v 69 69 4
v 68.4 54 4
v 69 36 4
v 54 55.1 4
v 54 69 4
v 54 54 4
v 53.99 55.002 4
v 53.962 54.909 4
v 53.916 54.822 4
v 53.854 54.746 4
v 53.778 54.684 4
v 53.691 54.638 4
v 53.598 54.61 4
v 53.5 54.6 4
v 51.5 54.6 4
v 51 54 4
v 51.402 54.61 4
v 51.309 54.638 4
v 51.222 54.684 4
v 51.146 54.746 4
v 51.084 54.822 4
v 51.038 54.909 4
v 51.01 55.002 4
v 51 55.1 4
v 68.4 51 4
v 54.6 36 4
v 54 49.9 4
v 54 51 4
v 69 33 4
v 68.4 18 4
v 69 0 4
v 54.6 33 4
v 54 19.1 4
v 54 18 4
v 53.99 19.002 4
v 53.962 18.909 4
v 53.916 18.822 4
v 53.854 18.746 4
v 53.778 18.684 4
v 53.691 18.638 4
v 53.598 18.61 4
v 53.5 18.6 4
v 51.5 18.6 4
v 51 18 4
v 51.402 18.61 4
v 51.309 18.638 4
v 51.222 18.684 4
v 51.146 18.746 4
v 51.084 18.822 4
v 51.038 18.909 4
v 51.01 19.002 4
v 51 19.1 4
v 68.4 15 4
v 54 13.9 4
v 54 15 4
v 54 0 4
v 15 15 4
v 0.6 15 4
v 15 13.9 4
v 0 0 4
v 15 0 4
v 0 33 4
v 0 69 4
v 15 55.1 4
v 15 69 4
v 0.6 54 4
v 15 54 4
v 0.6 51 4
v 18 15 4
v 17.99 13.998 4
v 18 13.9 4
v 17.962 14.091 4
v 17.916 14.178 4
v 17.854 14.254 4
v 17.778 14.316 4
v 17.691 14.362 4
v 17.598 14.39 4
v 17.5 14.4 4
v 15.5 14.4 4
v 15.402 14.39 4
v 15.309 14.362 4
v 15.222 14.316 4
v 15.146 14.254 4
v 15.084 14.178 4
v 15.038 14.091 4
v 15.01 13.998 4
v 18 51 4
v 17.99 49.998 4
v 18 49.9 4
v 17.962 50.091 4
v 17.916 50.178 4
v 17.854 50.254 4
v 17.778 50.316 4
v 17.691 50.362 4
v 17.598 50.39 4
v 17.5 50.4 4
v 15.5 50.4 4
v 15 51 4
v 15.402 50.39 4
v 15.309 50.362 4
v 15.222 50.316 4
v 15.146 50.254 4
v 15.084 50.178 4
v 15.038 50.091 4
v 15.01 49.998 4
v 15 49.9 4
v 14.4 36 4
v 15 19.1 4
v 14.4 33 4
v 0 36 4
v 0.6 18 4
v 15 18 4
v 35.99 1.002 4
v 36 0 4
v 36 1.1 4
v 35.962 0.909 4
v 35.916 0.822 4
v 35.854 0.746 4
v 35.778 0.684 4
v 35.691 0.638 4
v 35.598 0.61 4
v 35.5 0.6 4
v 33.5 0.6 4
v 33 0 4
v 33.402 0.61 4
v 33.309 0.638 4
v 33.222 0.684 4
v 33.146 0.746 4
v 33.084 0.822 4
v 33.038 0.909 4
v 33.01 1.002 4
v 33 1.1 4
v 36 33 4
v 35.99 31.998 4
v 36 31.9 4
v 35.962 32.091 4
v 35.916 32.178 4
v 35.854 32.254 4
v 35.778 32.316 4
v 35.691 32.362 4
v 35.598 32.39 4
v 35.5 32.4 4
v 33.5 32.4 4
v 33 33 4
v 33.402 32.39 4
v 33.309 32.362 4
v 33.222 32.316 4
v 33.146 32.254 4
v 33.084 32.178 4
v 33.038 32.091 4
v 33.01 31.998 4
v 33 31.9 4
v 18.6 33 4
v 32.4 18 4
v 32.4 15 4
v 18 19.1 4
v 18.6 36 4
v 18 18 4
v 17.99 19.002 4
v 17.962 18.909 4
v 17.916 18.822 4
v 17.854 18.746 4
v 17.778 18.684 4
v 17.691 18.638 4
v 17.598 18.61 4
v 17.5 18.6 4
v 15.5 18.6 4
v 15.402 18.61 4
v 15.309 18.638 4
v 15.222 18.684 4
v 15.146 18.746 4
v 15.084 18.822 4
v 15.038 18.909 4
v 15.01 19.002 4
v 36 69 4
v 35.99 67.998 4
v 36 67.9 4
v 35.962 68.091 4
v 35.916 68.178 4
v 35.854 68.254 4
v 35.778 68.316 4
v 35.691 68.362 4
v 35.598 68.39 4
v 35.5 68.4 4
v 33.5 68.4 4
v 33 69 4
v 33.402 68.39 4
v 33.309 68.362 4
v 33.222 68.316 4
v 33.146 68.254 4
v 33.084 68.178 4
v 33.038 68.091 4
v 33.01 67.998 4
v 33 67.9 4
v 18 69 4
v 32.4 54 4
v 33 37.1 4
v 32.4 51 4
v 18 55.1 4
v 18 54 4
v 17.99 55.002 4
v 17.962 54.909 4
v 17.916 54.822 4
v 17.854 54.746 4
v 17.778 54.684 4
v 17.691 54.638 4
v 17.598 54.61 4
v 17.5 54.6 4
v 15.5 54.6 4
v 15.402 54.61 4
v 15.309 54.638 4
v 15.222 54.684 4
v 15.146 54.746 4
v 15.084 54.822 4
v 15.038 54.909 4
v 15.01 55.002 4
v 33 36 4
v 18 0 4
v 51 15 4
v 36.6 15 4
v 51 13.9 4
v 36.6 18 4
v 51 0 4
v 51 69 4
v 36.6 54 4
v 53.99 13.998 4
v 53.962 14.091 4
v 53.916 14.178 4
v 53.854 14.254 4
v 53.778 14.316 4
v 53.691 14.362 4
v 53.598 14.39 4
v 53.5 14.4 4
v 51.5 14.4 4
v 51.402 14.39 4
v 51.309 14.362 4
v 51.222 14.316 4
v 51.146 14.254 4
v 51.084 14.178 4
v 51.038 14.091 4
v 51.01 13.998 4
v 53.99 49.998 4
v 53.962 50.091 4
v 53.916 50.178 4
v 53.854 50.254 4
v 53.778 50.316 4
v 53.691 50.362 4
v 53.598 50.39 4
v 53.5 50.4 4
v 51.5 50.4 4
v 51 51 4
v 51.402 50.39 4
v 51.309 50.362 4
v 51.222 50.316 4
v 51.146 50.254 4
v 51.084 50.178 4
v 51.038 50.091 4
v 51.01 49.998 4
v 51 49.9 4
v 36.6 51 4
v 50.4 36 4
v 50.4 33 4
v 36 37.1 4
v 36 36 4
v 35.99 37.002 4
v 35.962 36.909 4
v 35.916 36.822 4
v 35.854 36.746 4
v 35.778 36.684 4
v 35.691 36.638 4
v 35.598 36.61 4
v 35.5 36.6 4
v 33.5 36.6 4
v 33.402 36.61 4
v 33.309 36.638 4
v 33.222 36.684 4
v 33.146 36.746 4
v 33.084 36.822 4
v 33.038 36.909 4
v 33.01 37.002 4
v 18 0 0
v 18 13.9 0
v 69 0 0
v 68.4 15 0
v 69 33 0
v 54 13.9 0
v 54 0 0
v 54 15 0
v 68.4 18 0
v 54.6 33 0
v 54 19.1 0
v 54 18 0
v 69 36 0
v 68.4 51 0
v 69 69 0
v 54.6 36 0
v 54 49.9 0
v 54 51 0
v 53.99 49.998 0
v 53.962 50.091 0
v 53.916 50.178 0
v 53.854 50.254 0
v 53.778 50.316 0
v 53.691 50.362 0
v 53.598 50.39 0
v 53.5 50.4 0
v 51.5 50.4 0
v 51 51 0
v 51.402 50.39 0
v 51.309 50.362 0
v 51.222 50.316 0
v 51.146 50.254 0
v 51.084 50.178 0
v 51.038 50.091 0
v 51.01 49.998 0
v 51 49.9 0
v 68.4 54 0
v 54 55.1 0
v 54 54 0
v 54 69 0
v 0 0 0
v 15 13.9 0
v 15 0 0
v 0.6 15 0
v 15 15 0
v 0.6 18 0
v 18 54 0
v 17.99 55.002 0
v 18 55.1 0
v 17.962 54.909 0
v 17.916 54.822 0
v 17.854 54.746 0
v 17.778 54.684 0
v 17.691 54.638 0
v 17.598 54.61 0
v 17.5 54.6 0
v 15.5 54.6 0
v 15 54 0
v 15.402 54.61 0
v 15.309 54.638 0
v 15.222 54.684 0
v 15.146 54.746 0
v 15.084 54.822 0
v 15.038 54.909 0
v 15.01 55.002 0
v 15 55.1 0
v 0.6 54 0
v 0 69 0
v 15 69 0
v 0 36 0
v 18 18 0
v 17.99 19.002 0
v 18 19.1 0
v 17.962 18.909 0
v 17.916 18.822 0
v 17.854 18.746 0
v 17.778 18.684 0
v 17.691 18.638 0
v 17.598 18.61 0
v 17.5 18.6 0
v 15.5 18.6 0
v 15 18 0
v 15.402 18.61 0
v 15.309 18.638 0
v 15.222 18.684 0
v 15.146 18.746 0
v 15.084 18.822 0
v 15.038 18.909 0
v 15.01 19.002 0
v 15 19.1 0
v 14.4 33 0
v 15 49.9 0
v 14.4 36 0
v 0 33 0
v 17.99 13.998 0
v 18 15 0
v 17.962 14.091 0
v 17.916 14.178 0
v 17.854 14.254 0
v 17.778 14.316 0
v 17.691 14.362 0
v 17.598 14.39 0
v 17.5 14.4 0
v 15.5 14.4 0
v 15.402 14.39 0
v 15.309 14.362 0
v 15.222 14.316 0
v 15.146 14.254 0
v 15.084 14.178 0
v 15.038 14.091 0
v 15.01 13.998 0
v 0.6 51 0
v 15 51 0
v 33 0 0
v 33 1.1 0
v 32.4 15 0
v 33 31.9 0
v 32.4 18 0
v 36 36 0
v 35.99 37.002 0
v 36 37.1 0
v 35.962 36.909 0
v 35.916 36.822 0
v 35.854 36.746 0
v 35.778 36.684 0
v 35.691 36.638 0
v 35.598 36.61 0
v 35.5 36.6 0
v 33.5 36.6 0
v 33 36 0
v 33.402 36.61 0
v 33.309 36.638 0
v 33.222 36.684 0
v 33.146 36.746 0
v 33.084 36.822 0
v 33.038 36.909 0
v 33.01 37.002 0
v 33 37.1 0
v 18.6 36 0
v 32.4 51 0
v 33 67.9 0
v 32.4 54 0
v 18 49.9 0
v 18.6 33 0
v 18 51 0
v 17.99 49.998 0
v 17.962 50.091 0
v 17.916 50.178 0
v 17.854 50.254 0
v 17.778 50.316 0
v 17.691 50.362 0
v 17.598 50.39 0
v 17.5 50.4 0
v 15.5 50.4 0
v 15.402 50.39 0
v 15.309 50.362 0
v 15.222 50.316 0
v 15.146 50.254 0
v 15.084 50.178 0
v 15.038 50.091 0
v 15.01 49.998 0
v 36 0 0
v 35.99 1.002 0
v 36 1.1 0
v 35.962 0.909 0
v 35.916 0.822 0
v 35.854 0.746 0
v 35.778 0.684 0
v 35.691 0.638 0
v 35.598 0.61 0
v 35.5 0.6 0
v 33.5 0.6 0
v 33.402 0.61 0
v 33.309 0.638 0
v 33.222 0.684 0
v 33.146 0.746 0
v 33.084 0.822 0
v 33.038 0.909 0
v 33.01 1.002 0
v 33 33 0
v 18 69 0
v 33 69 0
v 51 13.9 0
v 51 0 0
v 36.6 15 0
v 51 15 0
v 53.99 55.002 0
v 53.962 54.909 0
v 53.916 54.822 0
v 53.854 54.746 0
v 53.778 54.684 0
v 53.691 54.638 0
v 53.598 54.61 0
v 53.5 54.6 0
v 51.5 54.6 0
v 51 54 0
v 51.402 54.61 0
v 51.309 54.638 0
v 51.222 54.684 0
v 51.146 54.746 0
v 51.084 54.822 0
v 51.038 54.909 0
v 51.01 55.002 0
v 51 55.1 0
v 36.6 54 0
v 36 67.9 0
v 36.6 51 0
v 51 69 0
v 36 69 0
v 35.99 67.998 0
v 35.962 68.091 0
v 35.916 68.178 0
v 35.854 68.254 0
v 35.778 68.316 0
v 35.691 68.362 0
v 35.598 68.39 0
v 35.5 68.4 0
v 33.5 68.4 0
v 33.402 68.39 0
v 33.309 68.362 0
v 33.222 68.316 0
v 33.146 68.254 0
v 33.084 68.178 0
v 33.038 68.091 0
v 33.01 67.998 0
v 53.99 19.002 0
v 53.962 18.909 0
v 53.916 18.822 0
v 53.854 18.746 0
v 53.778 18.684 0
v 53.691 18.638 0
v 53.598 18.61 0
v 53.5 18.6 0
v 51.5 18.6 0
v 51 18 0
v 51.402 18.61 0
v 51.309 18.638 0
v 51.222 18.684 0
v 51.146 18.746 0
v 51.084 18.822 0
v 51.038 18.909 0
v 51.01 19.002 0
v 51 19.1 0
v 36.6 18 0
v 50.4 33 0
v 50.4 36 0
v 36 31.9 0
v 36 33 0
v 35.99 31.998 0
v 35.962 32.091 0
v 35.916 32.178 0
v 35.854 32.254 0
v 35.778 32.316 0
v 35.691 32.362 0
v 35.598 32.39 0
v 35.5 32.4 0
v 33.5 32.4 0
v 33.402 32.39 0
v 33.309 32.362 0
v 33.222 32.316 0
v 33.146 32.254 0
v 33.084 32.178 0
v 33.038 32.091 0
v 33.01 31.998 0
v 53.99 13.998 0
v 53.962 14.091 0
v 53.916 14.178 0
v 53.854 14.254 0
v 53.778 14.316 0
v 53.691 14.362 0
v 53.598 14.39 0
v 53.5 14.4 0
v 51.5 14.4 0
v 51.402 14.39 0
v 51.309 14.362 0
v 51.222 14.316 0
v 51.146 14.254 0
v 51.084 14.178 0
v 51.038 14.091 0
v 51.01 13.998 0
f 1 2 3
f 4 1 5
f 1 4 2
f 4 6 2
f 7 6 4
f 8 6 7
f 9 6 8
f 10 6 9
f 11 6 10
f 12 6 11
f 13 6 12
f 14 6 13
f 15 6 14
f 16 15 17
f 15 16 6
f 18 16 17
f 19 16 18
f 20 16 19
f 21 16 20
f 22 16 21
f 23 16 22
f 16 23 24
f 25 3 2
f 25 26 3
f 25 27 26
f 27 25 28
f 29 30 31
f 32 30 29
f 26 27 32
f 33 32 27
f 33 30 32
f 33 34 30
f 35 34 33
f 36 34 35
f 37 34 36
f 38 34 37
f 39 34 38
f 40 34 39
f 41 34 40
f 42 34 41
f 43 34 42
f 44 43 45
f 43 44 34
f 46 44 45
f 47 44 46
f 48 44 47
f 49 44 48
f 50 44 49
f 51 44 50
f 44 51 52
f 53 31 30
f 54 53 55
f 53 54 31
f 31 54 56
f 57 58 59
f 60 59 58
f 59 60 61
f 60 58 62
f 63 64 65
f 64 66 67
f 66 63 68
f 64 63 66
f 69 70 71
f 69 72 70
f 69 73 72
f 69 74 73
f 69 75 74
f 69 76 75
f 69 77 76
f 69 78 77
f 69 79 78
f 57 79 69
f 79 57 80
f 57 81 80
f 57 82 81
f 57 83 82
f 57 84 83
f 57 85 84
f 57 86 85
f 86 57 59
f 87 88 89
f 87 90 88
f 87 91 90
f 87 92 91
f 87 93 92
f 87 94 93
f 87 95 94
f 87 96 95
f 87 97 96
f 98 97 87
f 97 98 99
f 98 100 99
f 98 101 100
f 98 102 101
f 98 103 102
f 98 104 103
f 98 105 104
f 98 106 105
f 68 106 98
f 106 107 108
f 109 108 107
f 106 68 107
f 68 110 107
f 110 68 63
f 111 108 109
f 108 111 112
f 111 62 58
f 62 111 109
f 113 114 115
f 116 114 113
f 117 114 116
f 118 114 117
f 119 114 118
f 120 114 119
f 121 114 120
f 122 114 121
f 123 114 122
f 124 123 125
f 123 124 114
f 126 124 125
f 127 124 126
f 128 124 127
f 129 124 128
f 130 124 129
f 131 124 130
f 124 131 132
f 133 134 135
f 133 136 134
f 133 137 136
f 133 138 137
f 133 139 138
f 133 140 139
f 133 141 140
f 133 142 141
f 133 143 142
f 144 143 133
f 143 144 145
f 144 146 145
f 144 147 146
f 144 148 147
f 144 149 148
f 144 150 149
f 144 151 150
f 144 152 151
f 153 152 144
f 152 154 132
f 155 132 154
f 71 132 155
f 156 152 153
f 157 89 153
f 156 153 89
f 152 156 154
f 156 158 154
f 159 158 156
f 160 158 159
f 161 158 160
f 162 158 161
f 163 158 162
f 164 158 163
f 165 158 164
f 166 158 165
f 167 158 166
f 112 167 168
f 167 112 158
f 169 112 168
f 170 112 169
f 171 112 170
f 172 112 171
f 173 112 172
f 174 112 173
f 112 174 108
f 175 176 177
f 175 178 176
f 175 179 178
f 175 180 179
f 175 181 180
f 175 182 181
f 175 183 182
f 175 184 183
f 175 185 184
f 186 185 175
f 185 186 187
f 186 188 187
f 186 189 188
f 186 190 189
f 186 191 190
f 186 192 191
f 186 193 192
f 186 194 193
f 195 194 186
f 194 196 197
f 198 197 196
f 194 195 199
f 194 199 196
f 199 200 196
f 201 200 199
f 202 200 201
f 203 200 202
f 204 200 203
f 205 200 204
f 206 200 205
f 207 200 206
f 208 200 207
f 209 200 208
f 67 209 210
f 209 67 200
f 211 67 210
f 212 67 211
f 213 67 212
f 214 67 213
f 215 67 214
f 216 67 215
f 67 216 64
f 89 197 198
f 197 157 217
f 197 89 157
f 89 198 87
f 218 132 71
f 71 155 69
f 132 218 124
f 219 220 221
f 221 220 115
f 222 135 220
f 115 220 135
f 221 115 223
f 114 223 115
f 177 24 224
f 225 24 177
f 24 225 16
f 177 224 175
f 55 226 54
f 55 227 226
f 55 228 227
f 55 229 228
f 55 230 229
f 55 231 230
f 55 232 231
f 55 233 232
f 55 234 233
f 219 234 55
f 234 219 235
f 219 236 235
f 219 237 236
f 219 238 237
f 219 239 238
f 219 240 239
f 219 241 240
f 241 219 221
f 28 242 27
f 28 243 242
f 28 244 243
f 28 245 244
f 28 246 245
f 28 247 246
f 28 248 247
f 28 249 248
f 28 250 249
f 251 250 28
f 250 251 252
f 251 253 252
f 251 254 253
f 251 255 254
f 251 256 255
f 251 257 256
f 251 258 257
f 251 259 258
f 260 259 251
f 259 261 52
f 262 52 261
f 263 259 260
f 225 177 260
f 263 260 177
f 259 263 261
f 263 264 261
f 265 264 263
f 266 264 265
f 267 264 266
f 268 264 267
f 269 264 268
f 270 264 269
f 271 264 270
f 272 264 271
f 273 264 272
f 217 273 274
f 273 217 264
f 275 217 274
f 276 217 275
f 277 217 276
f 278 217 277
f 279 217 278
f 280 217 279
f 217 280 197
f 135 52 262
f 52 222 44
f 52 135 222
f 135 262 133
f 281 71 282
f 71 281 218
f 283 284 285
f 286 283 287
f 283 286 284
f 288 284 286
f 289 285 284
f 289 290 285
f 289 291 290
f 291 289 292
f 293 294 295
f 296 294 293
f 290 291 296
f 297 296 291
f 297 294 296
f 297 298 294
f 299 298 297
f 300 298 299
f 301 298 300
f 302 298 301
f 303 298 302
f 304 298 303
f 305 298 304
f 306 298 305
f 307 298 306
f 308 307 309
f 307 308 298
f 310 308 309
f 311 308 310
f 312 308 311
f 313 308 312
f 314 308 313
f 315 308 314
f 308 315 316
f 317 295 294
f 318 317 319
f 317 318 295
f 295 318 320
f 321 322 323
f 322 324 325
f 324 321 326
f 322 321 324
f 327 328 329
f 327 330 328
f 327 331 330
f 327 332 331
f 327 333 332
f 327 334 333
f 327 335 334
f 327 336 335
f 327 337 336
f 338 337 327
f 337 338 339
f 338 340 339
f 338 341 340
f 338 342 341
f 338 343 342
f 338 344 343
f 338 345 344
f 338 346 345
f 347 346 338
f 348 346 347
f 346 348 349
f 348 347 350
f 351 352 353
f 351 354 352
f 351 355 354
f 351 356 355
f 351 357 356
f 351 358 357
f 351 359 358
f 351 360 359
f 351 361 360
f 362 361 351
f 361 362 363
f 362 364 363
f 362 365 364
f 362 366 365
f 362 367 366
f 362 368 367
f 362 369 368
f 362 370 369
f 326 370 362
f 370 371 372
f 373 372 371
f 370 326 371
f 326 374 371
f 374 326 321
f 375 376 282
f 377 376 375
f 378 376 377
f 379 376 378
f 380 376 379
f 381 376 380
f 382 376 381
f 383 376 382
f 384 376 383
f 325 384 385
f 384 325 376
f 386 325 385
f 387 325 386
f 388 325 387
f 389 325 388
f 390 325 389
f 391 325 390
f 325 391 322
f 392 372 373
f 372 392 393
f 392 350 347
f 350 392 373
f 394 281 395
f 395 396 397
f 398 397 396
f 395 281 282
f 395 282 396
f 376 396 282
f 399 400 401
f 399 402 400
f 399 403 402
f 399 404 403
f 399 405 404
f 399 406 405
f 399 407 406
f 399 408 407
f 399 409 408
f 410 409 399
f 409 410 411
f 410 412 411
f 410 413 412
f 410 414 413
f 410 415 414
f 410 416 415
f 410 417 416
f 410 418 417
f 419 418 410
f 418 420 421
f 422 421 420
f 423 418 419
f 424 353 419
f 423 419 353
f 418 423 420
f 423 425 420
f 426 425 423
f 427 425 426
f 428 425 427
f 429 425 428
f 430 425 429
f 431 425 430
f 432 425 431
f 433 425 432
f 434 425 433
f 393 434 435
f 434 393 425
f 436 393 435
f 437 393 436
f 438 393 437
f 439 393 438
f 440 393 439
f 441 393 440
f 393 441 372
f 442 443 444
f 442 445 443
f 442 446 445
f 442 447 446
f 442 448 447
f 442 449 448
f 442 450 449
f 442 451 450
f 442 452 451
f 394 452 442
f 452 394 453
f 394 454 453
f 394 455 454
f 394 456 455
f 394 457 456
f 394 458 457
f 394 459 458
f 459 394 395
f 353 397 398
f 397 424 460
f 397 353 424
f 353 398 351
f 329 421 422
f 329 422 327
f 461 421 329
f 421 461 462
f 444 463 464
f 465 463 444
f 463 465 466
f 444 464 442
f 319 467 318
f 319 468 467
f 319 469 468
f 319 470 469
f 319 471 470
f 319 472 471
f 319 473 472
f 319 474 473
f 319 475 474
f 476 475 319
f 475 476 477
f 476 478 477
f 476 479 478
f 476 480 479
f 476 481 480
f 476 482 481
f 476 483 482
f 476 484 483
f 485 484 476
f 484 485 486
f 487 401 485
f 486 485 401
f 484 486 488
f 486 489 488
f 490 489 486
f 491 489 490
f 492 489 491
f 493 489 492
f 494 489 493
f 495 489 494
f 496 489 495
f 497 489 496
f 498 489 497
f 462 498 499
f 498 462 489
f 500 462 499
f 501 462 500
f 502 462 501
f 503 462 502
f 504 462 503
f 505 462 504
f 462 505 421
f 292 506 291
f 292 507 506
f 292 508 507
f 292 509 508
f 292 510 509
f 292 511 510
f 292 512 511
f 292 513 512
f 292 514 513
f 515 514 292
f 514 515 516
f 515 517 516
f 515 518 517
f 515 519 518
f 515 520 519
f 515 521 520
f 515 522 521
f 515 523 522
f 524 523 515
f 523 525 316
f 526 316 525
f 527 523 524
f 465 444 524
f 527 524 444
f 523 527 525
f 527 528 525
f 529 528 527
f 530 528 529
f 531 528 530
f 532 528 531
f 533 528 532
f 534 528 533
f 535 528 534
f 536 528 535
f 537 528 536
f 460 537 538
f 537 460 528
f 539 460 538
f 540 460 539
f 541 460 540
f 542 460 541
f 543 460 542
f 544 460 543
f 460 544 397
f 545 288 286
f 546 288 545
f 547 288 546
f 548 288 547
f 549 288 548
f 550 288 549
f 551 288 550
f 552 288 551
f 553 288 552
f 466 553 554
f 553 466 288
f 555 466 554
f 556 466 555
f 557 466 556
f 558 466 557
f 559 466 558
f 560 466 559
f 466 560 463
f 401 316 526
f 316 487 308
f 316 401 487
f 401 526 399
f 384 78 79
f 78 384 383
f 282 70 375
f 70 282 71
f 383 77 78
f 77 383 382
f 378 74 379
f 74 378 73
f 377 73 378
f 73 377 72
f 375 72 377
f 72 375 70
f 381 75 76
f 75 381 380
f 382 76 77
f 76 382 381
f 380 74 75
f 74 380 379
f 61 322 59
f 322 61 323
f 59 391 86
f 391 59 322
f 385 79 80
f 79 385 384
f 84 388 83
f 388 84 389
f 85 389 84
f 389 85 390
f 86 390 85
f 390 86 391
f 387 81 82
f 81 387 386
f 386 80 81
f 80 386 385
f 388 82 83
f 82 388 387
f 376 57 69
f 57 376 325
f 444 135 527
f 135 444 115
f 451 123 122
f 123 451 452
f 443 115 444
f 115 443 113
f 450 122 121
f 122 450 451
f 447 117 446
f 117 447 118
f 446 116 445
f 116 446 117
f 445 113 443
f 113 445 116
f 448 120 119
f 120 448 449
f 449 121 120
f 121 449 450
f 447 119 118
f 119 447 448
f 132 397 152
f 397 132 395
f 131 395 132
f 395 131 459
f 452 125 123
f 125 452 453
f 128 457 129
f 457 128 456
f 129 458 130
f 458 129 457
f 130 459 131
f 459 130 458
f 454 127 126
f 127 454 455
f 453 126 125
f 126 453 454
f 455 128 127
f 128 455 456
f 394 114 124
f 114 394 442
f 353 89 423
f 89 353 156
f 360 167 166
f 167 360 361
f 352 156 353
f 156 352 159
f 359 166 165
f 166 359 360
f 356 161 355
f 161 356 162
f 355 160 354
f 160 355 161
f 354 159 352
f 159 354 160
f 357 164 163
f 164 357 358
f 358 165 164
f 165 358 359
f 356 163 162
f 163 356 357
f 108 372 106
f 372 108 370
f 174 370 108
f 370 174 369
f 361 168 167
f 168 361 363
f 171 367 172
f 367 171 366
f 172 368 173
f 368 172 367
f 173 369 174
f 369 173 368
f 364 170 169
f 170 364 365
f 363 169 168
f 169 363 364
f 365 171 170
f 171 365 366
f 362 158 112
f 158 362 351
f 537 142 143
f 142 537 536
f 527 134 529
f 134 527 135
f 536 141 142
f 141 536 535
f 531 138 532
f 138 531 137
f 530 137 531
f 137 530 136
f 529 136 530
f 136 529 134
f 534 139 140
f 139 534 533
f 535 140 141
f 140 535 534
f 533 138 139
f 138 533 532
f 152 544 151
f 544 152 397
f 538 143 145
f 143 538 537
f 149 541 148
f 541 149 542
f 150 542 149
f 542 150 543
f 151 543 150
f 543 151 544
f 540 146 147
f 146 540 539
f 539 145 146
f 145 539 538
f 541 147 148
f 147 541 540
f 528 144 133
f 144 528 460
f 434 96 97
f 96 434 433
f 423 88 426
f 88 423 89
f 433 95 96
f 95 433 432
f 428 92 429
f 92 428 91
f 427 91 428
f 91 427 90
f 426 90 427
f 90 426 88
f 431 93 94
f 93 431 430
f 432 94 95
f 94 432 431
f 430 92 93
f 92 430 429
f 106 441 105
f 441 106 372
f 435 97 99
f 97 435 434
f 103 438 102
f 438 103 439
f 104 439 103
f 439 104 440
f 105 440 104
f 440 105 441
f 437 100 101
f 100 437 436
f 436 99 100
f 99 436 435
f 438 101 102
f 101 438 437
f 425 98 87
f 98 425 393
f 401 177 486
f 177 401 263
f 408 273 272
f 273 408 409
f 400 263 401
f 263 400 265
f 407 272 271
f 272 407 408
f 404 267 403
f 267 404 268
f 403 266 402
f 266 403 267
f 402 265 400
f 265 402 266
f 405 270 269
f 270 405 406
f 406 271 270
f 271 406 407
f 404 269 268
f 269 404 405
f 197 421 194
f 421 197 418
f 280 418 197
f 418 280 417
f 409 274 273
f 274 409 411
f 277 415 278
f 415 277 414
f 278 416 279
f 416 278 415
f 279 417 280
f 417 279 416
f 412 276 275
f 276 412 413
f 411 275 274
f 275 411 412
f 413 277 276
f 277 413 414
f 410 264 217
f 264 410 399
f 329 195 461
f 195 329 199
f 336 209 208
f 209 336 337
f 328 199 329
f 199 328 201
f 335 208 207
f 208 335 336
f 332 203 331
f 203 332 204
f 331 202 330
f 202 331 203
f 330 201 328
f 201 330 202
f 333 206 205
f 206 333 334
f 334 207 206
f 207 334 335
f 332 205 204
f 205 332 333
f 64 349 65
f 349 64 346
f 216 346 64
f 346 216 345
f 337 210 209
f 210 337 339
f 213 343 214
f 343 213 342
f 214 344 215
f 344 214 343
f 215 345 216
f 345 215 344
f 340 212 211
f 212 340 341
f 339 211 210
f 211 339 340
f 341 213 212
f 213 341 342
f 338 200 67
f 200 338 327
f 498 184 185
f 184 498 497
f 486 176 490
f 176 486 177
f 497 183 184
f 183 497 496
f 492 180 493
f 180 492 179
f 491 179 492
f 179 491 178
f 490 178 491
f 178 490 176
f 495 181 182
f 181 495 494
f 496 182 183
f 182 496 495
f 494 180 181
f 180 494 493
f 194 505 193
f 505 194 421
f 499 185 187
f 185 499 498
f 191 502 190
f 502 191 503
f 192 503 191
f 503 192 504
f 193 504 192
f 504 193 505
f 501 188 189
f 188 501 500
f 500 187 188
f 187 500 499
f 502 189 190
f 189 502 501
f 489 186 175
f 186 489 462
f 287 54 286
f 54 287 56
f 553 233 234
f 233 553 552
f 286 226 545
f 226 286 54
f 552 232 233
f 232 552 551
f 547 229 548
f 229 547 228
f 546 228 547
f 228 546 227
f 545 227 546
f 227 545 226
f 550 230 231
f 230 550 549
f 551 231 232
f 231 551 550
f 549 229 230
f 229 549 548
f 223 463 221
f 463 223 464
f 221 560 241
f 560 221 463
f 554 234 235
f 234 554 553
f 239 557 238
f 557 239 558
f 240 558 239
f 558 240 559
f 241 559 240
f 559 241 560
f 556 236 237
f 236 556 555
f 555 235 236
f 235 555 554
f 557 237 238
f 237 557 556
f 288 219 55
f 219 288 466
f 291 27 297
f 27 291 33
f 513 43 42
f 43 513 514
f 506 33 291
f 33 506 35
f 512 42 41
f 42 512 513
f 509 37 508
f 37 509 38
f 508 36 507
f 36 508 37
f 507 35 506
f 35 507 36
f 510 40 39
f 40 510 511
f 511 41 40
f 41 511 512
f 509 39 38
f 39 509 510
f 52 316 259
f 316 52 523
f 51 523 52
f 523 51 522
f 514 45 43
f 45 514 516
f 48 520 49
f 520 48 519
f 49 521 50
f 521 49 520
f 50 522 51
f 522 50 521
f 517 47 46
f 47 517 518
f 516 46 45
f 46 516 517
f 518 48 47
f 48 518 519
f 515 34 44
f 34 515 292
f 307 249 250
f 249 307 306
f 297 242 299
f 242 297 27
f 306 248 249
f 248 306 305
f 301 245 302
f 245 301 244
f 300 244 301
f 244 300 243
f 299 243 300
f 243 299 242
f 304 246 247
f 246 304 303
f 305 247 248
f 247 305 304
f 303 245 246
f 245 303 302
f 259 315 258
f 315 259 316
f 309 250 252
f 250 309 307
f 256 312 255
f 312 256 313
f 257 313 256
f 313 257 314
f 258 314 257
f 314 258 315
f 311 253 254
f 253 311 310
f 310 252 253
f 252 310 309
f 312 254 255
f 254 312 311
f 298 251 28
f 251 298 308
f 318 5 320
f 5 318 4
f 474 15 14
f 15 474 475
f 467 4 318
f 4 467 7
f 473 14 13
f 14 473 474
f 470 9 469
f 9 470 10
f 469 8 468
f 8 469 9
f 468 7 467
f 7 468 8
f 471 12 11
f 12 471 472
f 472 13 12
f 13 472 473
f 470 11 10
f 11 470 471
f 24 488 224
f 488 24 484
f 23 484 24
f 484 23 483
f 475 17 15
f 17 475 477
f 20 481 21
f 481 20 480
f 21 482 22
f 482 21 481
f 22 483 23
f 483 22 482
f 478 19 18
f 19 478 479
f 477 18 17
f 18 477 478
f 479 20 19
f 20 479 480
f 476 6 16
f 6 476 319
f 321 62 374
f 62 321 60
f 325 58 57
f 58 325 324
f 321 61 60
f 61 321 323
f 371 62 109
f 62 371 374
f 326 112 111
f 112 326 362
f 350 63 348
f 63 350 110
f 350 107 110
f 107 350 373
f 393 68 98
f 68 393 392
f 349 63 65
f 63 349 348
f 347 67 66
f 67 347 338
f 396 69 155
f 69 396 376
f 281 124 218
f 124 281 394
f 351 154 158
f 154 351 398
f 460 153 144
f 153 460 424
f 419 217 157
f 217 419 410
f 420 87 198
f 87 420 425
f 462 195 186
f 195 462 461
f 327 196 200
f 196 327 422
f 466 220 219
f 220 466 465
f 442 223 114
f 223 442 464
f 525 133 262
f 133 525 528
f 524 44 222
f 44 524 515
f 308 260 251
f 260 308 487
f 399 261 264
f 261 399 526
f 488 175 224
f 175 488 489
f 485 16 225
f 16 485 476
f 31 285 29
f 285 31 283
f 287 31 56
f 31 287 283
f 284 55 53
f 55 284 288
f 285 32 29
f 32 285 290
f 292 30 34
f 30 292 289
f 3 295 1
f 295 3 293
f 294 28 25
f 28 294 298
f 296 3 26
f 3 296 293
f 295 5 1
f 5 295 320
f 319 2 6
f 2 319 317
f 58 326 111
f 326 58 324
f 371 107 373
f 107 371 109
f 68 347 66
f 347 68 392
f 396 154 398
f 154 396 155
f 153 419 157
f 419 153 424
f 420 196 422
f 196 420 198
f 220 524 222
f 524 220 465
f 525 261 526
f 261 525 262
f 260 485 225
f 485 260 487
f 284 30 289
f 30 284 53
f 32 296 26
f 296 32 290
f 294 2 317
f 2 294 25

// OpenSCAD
// Generated by SolidPython 1.1.3 on 2024-06-26 12:25:00
$fn=32;


union() {
	cube(size = 0);
	translate(v = [0, 0, 0]) {
		cube(size = [15, 15, 4]);
	}
	translate(v = [0, 18, 0]) {
		cube(size = [15, 15, 4]);
	}
	translate(v = [0, 36, 0]) {
		cube(size = [15, 15, 4]);
	}
	translate(v = [0, 54, 0]) {
		cube(size = [15, 15, 4]);
	}
	translate(v = [18, 0, 0]) {
		cube(size = [15, 15, 4]);
	}
	translate(v = [18, 18, 0]) {
		cube(size = [15, 15, 4]);
	}
	translate(v = [18, 36, 0]) {
		cube(size = [15, 15, 4]);
	}
	translate(v = [18, 54, 0]) {
		cube(size = [15, 15, 4]);
	}
	translate(v = [36, 0, 0]) {
		cube(size = [15, 15, 4]);
	}
	translate(v = [36, 18, 0]) {
		cube(size = [15, 15, 4]);
	}
	translate(v = [36, 36, 0]) {
		cube(size = [15, 15, 4]);
	}
	translate(v = [36, 54, 0]) {
		cube(size = [15, 15, 4]);
	}
	translate(v = [54, 0, 0]) {
		cube(size = [15, 15, 4]);
	}
	translate(v = [54, 18, 0]) {
		cube(size = [15, 15, 4]);
	}
	translate(v = [54, 36, 0]) {
		cube(size = [15, 15, 4]);
	}
	translate(v = [54, 54, 0]) {
		cube(size = [15, 15, 4]);
	}
	translate(v = [15, 14.4000000000, 0]) {
		union() {
			cube(size = [3, 0.6000000000, 4]);
			mirror(v = [1, 0, 0]) {
				translate(v = [-0.5000000000, -0.5000000000, 0]) {
					difference() {
						cube(size = [0.5000000000, 0.5000000000, 4]);
						cylinder(h = 4, r = 0.5000000000);
					}
				}
			}
			translate(v = [2.5000000000, -0.5000000000, 0]) {
				difference() {
					cube(size = [0.5000000000, 0.5000000000, 4]);
					cylinder(h = 4, r = 0.5000000000);
				}
			}
		}
	}
	translate(v = [33, 0, 0]) {
		translate(v = [0, 0.6000000000]) {
			mirror(v = [0, 1, 0]) {
				union() {
					cube(size = [3, 0.6000000000, 4]);
					mirror(v = [1, 0, 0]) {
						translate(v = [-0.5000000000, -0.5000000000, 0]) {
							difference() {
								cube(size = [0.5000000000, 0.5000000000, 4]);
								cylinder(h = 4, r = 0.5000000000);
							}
						}
					}
					translate(v = [2.5000000000, -0.5000000000, 0]) {
						difference() {
							cube(size = [0.5000000000, 0.5000000000, 4]);
							cylinder(h = 4, r = 0.5000000000);
						}
					}
				}
			}
		}
	}
	translate(v = [15, 18, 0]) {
		translate(v = [0, 0.6000000000]) {
			mirror(v = [0, 1, 0]) {
				union() {
					cube(size = [3, 0.6000000000, 4]);
					mirror(v = [1, 0, 0]) {
						translate(v = [-0.5000000000, -0.5000000000, 0]) {
							difference() {
								cube(size = [0.5000000000, 0.5000000000, 4]);
								cylinder(h = 4, r = 0.5000000000);
							}
						}
					}
					translate(v = [2.5000000000, -0.5000000000, 0]) {
						difference() {
							cube(size = [0.5000000000, 0.5000000000, 4]);
							cylinder(h = 4, r = 0.5000000000);
						}
					}
				}
			}
		}
	}
	translate(v = [33, 32.4000000000, 0]) {
		union() {
			cube(size = [3, 0.6000000000, 4]);
			mirror(v = [1, 0, 0]) {
				translate(v = [-0.5000000000, -0.5000000000, 0]) {
					difference() {
						cube(size = [0.5000000000, 0.5000000000, 4]);
						cylinder(h = 4, r = 0.5000000000);
					}
				}
			}
			translate(v = [2.5000000000, -0.5000000000, 0]) {
				difference() {
					cube(size = [0.5000000000, 0.5000000000, 4]);
					cylinder(h = 4, r = 0.5000000000);
				}
			}
		}
	}
	translate(v = [15, 50.4000000000, 0]) {
		union() {
			cube(size = [3, 0.6000000000, 4]);
			mirror(v = [1, 0, 0]) {
				translate(v = [-0.5000000000, -0.5000000000, 0]) {
					difference() {
						cube(size = [0.5000000000, 0.5000000000, 4]);
						cylinder(h = 4, r = 0.5000000000);
					}
				}
			}
			translate(v = [2.5000000000, -0.5000000000, 0]) {
				difference() {
					cube(size = [0.5000000000, 0.5000000000, 4]);
					cylinder(h = 4, r = 0.5000000000);
				}
			}
		}
	}
	translate(v = [33, 36, 0]) {
		translate(v = [0, 0.6000000000]) {
			mirror(v = [0, 1, 0]) {
				union() {
					cube(size = [3, 0.6000000000, 4]);
					mirror(v = [1, 0, 0]) {
						translate(v = [-0.5000000000, -0.5000000000, 0]) {
							difference() {
								cube(size = [0.5000000000, 0.5000000000, 4]);
								cylinder(h = 4, r = 0.5000000000);
							}
						}
					}
					translate(v = [2.5000000000, -0.5000000000, 0]) {
						difference() {
							cube(size = [0.5000000000, 0.5000000000, 4]);
							cylinder(h = 4, r = 0.5000000000);
						}
					}
				}
			}
		}
	}
	translate(v = [15, 54, 0]) {
		translate(v = [0, 0.6000000000]) {
			mirror(v = [0, 1, 0]) {
				union() {
					cube(size = [3, 0.6000000000, 4]);
					mirror(v = [1, 0, 0]) {
						translate(v = [-0.5000000000, -0.5000000000, 0]) {
							difference() {
								cube(size = [0.5000000000, 0.5000000000, 4]);
								cylinder(h = 4, r = 0.5000000000);
							}
						}
					}
					translate(v = [2.5000000000, -0.5000000000, 0]) {
						difference() {
							cube(size = [0.5000000000, 0.5000000000, 4]);
							cylinder(h = 4, r = 0.5000000000);
						}
					}
				}
			}
		}
	}
	translate(v = [33, 68.4000000000, 0]) {
		union() {
			cube(size = [3, 0.6000000000, 4]);
			mirror(v = [1, 0, 0]) {
				translate(v = [-0.5000000000, -0.5000000000, 0]) {
					difference() {
						cube(size = [0.5000000000, 0.5000000000, 4]);
						cylinder(h = 4, r = 0.5000000000);
					}
				}
			}
			translate(v = [2.5000000000, -0.5000000000, 0]) {
				difference() {
					cube(size = [0.5000000000, 0.5000000000, 4]);
					cylinder(h = 4, r = 0.5000000000);
				}
			}
		}
	}
	translate(v = [51, 14.4000000000, 0]) {
		union() {
			cube(size = [3, 0.6000000000, 4]);
			mirror(v = [1, 0, 0]) {
				translate(v = [-0.5000000000, -0.5000000000, 0]) {
					difference() {
						cube(size = [0.5000000000, 0.5000000000, 4]);
						cylinder(h = 4, r = 0.5000000000);
					}
				}
			}
			translate(v = [2.5000000000, -0.5000000000, 0]) {
				difference() {
					cube(size = [0.5000000000, 0.5000000000, 4]);
					cylinder(h = 4, r = 0.5000000000);
				}
			}
		}
	}
	translate(v = [51, 18, 0]) {
		translate(v = [0, 0.6000000000]) {
			mirror(v = [0, 1, 0]) {
				union() {
					cube(size = [3, 0.6000000000, 4]);
					mirror(v = [1, 0, 0]) {
						translate(v = [-0.5000000000, -0.5000000000, 0]) {
							difference() {
								cube(size = [0.5000000000, 0.5000000000, 4]);
								cylinder(h = 4, r = 0.5000000000);
							}
						}
					}
					translate(v = [2.5000000000, -0.5000000000, 0]) {
						difference() {
							cube(size = [0.5000000000, 0.5000000000, 4]);
							cylinder(h = 4, r = 0.5000000000);
						}
					}
				}
			}
		}
	}
	translate(v = [51, 50.4000000000, 0]) {
		union() {
			cube(size = [3, 0.6000000000, 4]);
			mirror(v = [1, 0, 0]) {
				translate(v = [-0.5000000000, -0.5000000000, 0]) {
					difference() {
						cube(size = [0.5000000000, 0.5000000000, 4]);
						cylinder(h = 4, r = 0.5000000000);
					}
				}
			}
			translate(v = [2.5000000000, -0.5000000000, 0]) {
				difference() {
					cube(size = [0.5000000000, 0.5000000000, 4]);
					cylinder(h = 4, r = 0.5000000000);
				}
			}
		}
	}
	translate(v = [51, 54, 0]) {
		translate(v = [0, 0.6000000000]) {
			mirror(v = [0, 1, 0]) {
				union() {
					cube(size = [3, 0.6000000000, 4]);
					mirror(v = [1, 0, 0]) {
						translate(v = [-0.5000000000, -0.5000000000, 0]) {
							difference() {
								cube(size = [0.5000000000, 0.5000000000, 4]);
								cylinder(h = 4, r = 0.5000000000);
							}
						}
					}
					translate(v = [2.5000000000, -0.5000000000, 0]) {
						difference() {
							cube(size = [0.5000000000, 0.5000000000, 4]);
							cylinder(h = 4, r = 0.5000000000);
						}
					}
				}
			}
		}
	}
	translate(v = [0, 15, 0]) {
		cube(size = [0.6000000000, 3, 4]);
	}
	translate(v = [14.4000000000, 33, 0]) {
		cube(size = [0.6000000000, 3, 4]);
	}
	translate(v = [0, 51, 0]) {
		cube(size = [0.6000000000, 3, 4]);
	}
	translate(v = [32.4000000000, 15, 0]) {
		cube(size = [0.6000000000, 3, 4]);
	}
	translate(v = [18, 33, 0]) {
		cube(size = [0.6000000000, 3, 4]);
	}
	translate(v = [32.4000000000, 51, 0]) {
		cube(size = [0.6000000000, 3, 4]);
	}
	translate(v = [36, 15, 0]) {
		cube(size = [0.6000000000, 3, 4]);
	}
	translate(v = [50.4000000000, 33, 0]) {
		cube(size = [0.6000000000, 3, 4]);
	}
	translate(v = [36, 51, 0]) {
		cube(size = [0.6000000000, 3, 4]);
	}
	translate(v = [68.4000000000, 15, 0]) {
		cube(size = [0.6000000000, 3, 4]);
	}
	translate(v = [54, 33, 0]) {
		cube(size = [0.6000000000, 3, 4]);
	}
	translate(v = [68.4000000000, 51, 0]) {
		cube(size = [0.6000000000, 3, 4]);
	}
}
/***********************************************
*********      SolidPython code:      **********
************************************************
 
from solid import *
from solid.utils import *


COMPLIANCE_LENGTH = 3
COMPLIANCE_THICKNESS = 0.6
COMPLIANCE_FILLET_RADIUS = 0.5

X_SIZE, Y_SIZE, THICKNESS = 15, 15, 4
X_GRID, Y_GRID = 4, 4


a = cube(0)


def fillet(r, h):
    return cube([r, r, h]) - cylinder(r, h)


def coords(x, y):
    return x * (X_SIZE + COMPLIANCE_LENGTH), y * (Y_SIZE + COMPLIANCE_LENGTH)


# base
for i in range(X_GRID):
    for j in range(Y_GRID):
        a += translate([*coords(i, j), 0])(cube([X_SIZE, Y_SIZE, THICKNESS]))

# horizontal linkages
for i in range(1, X_GRID, 2):
    for j in range(Y_GRID):
        x, y = coords(i, j)
        linkage = cube([COMPLIANCE_LENGTH, COMPLIANCE_THICKNESS, THICKNESS])
        linkage += mirror([1, 0, 0])(
            translate([-COMPLIANCE_FILLET_RADIUS, -COMPLIANCE_FILLET_RADIUS, 0])(
                fillet(COMPLIANCE_FILLET_RADIUS, THICKNESS)
            )
        )
        linkage += translate(
            [COMPLIANCE_LENGTH - COMPLIANCE_FILLET_RADIUS, -COMPLIANCE_FILLET_RADIUS, 0]
        )(fillet(COMPLIANCE_FILLET_RADIUS, THICKNESS))

        linkage_mirror = translate([0, COMPLIANCE_THICKNESS])(
            mirror([0, 1, 0])(linkage)
        )

        if j % 2 == 0:
            a += translate(
                [x - COMPLIANCE_LENGTH, y + Y_SIZE - COMPLIANCE_THICKNESS, 0]
            )(linkage)
            b = translate([x + X_SIZE, y, 0])(linkage_mirror)
        else:
            a += translate([x - COMPLIANCE_LENGTH, y, 0])(linkage_mirror)
            b = translate([x + X_SIZE, y + Y_SIZE - COMPLIANCE_THICKNESS, 0])(linkage)
        if i + 1 < X_GRID:
            a += b

# vertical linkages
for i in range(X_GRID):
    for j in range(1, Y_GRID, 2):
        x, y = coords(i, j)
        linkage = cube([COMPLIANCE_THICKNESS, COMPLIANCE_LENGTH, THICKNESS])

        if i % 2 == 0:
            a += translate([x, y - COMPLIANCE_LENGTH, 0])(linkage)
            b = translate([x + X_SIZE - COMPLIANCE_THICKNESS, y + Y_SIZE, 0])(linkage)
        else:
            a += translate(
                [x + X_SIZE - COMPLIANCE_THICKNESS, y - COMPLIANCE_LENGTH, 0]
            )(linkage)
            b = translate([x, y + Y_SIZE, 0])(linkage)
        if j + 1 < Y_GRID:
            a += b


scad_render_to_file(
    a, "./shearing_auxetics/flat_ratio_equal.scad", file_header="$fn=32;"
)
 
 
************************************************/
